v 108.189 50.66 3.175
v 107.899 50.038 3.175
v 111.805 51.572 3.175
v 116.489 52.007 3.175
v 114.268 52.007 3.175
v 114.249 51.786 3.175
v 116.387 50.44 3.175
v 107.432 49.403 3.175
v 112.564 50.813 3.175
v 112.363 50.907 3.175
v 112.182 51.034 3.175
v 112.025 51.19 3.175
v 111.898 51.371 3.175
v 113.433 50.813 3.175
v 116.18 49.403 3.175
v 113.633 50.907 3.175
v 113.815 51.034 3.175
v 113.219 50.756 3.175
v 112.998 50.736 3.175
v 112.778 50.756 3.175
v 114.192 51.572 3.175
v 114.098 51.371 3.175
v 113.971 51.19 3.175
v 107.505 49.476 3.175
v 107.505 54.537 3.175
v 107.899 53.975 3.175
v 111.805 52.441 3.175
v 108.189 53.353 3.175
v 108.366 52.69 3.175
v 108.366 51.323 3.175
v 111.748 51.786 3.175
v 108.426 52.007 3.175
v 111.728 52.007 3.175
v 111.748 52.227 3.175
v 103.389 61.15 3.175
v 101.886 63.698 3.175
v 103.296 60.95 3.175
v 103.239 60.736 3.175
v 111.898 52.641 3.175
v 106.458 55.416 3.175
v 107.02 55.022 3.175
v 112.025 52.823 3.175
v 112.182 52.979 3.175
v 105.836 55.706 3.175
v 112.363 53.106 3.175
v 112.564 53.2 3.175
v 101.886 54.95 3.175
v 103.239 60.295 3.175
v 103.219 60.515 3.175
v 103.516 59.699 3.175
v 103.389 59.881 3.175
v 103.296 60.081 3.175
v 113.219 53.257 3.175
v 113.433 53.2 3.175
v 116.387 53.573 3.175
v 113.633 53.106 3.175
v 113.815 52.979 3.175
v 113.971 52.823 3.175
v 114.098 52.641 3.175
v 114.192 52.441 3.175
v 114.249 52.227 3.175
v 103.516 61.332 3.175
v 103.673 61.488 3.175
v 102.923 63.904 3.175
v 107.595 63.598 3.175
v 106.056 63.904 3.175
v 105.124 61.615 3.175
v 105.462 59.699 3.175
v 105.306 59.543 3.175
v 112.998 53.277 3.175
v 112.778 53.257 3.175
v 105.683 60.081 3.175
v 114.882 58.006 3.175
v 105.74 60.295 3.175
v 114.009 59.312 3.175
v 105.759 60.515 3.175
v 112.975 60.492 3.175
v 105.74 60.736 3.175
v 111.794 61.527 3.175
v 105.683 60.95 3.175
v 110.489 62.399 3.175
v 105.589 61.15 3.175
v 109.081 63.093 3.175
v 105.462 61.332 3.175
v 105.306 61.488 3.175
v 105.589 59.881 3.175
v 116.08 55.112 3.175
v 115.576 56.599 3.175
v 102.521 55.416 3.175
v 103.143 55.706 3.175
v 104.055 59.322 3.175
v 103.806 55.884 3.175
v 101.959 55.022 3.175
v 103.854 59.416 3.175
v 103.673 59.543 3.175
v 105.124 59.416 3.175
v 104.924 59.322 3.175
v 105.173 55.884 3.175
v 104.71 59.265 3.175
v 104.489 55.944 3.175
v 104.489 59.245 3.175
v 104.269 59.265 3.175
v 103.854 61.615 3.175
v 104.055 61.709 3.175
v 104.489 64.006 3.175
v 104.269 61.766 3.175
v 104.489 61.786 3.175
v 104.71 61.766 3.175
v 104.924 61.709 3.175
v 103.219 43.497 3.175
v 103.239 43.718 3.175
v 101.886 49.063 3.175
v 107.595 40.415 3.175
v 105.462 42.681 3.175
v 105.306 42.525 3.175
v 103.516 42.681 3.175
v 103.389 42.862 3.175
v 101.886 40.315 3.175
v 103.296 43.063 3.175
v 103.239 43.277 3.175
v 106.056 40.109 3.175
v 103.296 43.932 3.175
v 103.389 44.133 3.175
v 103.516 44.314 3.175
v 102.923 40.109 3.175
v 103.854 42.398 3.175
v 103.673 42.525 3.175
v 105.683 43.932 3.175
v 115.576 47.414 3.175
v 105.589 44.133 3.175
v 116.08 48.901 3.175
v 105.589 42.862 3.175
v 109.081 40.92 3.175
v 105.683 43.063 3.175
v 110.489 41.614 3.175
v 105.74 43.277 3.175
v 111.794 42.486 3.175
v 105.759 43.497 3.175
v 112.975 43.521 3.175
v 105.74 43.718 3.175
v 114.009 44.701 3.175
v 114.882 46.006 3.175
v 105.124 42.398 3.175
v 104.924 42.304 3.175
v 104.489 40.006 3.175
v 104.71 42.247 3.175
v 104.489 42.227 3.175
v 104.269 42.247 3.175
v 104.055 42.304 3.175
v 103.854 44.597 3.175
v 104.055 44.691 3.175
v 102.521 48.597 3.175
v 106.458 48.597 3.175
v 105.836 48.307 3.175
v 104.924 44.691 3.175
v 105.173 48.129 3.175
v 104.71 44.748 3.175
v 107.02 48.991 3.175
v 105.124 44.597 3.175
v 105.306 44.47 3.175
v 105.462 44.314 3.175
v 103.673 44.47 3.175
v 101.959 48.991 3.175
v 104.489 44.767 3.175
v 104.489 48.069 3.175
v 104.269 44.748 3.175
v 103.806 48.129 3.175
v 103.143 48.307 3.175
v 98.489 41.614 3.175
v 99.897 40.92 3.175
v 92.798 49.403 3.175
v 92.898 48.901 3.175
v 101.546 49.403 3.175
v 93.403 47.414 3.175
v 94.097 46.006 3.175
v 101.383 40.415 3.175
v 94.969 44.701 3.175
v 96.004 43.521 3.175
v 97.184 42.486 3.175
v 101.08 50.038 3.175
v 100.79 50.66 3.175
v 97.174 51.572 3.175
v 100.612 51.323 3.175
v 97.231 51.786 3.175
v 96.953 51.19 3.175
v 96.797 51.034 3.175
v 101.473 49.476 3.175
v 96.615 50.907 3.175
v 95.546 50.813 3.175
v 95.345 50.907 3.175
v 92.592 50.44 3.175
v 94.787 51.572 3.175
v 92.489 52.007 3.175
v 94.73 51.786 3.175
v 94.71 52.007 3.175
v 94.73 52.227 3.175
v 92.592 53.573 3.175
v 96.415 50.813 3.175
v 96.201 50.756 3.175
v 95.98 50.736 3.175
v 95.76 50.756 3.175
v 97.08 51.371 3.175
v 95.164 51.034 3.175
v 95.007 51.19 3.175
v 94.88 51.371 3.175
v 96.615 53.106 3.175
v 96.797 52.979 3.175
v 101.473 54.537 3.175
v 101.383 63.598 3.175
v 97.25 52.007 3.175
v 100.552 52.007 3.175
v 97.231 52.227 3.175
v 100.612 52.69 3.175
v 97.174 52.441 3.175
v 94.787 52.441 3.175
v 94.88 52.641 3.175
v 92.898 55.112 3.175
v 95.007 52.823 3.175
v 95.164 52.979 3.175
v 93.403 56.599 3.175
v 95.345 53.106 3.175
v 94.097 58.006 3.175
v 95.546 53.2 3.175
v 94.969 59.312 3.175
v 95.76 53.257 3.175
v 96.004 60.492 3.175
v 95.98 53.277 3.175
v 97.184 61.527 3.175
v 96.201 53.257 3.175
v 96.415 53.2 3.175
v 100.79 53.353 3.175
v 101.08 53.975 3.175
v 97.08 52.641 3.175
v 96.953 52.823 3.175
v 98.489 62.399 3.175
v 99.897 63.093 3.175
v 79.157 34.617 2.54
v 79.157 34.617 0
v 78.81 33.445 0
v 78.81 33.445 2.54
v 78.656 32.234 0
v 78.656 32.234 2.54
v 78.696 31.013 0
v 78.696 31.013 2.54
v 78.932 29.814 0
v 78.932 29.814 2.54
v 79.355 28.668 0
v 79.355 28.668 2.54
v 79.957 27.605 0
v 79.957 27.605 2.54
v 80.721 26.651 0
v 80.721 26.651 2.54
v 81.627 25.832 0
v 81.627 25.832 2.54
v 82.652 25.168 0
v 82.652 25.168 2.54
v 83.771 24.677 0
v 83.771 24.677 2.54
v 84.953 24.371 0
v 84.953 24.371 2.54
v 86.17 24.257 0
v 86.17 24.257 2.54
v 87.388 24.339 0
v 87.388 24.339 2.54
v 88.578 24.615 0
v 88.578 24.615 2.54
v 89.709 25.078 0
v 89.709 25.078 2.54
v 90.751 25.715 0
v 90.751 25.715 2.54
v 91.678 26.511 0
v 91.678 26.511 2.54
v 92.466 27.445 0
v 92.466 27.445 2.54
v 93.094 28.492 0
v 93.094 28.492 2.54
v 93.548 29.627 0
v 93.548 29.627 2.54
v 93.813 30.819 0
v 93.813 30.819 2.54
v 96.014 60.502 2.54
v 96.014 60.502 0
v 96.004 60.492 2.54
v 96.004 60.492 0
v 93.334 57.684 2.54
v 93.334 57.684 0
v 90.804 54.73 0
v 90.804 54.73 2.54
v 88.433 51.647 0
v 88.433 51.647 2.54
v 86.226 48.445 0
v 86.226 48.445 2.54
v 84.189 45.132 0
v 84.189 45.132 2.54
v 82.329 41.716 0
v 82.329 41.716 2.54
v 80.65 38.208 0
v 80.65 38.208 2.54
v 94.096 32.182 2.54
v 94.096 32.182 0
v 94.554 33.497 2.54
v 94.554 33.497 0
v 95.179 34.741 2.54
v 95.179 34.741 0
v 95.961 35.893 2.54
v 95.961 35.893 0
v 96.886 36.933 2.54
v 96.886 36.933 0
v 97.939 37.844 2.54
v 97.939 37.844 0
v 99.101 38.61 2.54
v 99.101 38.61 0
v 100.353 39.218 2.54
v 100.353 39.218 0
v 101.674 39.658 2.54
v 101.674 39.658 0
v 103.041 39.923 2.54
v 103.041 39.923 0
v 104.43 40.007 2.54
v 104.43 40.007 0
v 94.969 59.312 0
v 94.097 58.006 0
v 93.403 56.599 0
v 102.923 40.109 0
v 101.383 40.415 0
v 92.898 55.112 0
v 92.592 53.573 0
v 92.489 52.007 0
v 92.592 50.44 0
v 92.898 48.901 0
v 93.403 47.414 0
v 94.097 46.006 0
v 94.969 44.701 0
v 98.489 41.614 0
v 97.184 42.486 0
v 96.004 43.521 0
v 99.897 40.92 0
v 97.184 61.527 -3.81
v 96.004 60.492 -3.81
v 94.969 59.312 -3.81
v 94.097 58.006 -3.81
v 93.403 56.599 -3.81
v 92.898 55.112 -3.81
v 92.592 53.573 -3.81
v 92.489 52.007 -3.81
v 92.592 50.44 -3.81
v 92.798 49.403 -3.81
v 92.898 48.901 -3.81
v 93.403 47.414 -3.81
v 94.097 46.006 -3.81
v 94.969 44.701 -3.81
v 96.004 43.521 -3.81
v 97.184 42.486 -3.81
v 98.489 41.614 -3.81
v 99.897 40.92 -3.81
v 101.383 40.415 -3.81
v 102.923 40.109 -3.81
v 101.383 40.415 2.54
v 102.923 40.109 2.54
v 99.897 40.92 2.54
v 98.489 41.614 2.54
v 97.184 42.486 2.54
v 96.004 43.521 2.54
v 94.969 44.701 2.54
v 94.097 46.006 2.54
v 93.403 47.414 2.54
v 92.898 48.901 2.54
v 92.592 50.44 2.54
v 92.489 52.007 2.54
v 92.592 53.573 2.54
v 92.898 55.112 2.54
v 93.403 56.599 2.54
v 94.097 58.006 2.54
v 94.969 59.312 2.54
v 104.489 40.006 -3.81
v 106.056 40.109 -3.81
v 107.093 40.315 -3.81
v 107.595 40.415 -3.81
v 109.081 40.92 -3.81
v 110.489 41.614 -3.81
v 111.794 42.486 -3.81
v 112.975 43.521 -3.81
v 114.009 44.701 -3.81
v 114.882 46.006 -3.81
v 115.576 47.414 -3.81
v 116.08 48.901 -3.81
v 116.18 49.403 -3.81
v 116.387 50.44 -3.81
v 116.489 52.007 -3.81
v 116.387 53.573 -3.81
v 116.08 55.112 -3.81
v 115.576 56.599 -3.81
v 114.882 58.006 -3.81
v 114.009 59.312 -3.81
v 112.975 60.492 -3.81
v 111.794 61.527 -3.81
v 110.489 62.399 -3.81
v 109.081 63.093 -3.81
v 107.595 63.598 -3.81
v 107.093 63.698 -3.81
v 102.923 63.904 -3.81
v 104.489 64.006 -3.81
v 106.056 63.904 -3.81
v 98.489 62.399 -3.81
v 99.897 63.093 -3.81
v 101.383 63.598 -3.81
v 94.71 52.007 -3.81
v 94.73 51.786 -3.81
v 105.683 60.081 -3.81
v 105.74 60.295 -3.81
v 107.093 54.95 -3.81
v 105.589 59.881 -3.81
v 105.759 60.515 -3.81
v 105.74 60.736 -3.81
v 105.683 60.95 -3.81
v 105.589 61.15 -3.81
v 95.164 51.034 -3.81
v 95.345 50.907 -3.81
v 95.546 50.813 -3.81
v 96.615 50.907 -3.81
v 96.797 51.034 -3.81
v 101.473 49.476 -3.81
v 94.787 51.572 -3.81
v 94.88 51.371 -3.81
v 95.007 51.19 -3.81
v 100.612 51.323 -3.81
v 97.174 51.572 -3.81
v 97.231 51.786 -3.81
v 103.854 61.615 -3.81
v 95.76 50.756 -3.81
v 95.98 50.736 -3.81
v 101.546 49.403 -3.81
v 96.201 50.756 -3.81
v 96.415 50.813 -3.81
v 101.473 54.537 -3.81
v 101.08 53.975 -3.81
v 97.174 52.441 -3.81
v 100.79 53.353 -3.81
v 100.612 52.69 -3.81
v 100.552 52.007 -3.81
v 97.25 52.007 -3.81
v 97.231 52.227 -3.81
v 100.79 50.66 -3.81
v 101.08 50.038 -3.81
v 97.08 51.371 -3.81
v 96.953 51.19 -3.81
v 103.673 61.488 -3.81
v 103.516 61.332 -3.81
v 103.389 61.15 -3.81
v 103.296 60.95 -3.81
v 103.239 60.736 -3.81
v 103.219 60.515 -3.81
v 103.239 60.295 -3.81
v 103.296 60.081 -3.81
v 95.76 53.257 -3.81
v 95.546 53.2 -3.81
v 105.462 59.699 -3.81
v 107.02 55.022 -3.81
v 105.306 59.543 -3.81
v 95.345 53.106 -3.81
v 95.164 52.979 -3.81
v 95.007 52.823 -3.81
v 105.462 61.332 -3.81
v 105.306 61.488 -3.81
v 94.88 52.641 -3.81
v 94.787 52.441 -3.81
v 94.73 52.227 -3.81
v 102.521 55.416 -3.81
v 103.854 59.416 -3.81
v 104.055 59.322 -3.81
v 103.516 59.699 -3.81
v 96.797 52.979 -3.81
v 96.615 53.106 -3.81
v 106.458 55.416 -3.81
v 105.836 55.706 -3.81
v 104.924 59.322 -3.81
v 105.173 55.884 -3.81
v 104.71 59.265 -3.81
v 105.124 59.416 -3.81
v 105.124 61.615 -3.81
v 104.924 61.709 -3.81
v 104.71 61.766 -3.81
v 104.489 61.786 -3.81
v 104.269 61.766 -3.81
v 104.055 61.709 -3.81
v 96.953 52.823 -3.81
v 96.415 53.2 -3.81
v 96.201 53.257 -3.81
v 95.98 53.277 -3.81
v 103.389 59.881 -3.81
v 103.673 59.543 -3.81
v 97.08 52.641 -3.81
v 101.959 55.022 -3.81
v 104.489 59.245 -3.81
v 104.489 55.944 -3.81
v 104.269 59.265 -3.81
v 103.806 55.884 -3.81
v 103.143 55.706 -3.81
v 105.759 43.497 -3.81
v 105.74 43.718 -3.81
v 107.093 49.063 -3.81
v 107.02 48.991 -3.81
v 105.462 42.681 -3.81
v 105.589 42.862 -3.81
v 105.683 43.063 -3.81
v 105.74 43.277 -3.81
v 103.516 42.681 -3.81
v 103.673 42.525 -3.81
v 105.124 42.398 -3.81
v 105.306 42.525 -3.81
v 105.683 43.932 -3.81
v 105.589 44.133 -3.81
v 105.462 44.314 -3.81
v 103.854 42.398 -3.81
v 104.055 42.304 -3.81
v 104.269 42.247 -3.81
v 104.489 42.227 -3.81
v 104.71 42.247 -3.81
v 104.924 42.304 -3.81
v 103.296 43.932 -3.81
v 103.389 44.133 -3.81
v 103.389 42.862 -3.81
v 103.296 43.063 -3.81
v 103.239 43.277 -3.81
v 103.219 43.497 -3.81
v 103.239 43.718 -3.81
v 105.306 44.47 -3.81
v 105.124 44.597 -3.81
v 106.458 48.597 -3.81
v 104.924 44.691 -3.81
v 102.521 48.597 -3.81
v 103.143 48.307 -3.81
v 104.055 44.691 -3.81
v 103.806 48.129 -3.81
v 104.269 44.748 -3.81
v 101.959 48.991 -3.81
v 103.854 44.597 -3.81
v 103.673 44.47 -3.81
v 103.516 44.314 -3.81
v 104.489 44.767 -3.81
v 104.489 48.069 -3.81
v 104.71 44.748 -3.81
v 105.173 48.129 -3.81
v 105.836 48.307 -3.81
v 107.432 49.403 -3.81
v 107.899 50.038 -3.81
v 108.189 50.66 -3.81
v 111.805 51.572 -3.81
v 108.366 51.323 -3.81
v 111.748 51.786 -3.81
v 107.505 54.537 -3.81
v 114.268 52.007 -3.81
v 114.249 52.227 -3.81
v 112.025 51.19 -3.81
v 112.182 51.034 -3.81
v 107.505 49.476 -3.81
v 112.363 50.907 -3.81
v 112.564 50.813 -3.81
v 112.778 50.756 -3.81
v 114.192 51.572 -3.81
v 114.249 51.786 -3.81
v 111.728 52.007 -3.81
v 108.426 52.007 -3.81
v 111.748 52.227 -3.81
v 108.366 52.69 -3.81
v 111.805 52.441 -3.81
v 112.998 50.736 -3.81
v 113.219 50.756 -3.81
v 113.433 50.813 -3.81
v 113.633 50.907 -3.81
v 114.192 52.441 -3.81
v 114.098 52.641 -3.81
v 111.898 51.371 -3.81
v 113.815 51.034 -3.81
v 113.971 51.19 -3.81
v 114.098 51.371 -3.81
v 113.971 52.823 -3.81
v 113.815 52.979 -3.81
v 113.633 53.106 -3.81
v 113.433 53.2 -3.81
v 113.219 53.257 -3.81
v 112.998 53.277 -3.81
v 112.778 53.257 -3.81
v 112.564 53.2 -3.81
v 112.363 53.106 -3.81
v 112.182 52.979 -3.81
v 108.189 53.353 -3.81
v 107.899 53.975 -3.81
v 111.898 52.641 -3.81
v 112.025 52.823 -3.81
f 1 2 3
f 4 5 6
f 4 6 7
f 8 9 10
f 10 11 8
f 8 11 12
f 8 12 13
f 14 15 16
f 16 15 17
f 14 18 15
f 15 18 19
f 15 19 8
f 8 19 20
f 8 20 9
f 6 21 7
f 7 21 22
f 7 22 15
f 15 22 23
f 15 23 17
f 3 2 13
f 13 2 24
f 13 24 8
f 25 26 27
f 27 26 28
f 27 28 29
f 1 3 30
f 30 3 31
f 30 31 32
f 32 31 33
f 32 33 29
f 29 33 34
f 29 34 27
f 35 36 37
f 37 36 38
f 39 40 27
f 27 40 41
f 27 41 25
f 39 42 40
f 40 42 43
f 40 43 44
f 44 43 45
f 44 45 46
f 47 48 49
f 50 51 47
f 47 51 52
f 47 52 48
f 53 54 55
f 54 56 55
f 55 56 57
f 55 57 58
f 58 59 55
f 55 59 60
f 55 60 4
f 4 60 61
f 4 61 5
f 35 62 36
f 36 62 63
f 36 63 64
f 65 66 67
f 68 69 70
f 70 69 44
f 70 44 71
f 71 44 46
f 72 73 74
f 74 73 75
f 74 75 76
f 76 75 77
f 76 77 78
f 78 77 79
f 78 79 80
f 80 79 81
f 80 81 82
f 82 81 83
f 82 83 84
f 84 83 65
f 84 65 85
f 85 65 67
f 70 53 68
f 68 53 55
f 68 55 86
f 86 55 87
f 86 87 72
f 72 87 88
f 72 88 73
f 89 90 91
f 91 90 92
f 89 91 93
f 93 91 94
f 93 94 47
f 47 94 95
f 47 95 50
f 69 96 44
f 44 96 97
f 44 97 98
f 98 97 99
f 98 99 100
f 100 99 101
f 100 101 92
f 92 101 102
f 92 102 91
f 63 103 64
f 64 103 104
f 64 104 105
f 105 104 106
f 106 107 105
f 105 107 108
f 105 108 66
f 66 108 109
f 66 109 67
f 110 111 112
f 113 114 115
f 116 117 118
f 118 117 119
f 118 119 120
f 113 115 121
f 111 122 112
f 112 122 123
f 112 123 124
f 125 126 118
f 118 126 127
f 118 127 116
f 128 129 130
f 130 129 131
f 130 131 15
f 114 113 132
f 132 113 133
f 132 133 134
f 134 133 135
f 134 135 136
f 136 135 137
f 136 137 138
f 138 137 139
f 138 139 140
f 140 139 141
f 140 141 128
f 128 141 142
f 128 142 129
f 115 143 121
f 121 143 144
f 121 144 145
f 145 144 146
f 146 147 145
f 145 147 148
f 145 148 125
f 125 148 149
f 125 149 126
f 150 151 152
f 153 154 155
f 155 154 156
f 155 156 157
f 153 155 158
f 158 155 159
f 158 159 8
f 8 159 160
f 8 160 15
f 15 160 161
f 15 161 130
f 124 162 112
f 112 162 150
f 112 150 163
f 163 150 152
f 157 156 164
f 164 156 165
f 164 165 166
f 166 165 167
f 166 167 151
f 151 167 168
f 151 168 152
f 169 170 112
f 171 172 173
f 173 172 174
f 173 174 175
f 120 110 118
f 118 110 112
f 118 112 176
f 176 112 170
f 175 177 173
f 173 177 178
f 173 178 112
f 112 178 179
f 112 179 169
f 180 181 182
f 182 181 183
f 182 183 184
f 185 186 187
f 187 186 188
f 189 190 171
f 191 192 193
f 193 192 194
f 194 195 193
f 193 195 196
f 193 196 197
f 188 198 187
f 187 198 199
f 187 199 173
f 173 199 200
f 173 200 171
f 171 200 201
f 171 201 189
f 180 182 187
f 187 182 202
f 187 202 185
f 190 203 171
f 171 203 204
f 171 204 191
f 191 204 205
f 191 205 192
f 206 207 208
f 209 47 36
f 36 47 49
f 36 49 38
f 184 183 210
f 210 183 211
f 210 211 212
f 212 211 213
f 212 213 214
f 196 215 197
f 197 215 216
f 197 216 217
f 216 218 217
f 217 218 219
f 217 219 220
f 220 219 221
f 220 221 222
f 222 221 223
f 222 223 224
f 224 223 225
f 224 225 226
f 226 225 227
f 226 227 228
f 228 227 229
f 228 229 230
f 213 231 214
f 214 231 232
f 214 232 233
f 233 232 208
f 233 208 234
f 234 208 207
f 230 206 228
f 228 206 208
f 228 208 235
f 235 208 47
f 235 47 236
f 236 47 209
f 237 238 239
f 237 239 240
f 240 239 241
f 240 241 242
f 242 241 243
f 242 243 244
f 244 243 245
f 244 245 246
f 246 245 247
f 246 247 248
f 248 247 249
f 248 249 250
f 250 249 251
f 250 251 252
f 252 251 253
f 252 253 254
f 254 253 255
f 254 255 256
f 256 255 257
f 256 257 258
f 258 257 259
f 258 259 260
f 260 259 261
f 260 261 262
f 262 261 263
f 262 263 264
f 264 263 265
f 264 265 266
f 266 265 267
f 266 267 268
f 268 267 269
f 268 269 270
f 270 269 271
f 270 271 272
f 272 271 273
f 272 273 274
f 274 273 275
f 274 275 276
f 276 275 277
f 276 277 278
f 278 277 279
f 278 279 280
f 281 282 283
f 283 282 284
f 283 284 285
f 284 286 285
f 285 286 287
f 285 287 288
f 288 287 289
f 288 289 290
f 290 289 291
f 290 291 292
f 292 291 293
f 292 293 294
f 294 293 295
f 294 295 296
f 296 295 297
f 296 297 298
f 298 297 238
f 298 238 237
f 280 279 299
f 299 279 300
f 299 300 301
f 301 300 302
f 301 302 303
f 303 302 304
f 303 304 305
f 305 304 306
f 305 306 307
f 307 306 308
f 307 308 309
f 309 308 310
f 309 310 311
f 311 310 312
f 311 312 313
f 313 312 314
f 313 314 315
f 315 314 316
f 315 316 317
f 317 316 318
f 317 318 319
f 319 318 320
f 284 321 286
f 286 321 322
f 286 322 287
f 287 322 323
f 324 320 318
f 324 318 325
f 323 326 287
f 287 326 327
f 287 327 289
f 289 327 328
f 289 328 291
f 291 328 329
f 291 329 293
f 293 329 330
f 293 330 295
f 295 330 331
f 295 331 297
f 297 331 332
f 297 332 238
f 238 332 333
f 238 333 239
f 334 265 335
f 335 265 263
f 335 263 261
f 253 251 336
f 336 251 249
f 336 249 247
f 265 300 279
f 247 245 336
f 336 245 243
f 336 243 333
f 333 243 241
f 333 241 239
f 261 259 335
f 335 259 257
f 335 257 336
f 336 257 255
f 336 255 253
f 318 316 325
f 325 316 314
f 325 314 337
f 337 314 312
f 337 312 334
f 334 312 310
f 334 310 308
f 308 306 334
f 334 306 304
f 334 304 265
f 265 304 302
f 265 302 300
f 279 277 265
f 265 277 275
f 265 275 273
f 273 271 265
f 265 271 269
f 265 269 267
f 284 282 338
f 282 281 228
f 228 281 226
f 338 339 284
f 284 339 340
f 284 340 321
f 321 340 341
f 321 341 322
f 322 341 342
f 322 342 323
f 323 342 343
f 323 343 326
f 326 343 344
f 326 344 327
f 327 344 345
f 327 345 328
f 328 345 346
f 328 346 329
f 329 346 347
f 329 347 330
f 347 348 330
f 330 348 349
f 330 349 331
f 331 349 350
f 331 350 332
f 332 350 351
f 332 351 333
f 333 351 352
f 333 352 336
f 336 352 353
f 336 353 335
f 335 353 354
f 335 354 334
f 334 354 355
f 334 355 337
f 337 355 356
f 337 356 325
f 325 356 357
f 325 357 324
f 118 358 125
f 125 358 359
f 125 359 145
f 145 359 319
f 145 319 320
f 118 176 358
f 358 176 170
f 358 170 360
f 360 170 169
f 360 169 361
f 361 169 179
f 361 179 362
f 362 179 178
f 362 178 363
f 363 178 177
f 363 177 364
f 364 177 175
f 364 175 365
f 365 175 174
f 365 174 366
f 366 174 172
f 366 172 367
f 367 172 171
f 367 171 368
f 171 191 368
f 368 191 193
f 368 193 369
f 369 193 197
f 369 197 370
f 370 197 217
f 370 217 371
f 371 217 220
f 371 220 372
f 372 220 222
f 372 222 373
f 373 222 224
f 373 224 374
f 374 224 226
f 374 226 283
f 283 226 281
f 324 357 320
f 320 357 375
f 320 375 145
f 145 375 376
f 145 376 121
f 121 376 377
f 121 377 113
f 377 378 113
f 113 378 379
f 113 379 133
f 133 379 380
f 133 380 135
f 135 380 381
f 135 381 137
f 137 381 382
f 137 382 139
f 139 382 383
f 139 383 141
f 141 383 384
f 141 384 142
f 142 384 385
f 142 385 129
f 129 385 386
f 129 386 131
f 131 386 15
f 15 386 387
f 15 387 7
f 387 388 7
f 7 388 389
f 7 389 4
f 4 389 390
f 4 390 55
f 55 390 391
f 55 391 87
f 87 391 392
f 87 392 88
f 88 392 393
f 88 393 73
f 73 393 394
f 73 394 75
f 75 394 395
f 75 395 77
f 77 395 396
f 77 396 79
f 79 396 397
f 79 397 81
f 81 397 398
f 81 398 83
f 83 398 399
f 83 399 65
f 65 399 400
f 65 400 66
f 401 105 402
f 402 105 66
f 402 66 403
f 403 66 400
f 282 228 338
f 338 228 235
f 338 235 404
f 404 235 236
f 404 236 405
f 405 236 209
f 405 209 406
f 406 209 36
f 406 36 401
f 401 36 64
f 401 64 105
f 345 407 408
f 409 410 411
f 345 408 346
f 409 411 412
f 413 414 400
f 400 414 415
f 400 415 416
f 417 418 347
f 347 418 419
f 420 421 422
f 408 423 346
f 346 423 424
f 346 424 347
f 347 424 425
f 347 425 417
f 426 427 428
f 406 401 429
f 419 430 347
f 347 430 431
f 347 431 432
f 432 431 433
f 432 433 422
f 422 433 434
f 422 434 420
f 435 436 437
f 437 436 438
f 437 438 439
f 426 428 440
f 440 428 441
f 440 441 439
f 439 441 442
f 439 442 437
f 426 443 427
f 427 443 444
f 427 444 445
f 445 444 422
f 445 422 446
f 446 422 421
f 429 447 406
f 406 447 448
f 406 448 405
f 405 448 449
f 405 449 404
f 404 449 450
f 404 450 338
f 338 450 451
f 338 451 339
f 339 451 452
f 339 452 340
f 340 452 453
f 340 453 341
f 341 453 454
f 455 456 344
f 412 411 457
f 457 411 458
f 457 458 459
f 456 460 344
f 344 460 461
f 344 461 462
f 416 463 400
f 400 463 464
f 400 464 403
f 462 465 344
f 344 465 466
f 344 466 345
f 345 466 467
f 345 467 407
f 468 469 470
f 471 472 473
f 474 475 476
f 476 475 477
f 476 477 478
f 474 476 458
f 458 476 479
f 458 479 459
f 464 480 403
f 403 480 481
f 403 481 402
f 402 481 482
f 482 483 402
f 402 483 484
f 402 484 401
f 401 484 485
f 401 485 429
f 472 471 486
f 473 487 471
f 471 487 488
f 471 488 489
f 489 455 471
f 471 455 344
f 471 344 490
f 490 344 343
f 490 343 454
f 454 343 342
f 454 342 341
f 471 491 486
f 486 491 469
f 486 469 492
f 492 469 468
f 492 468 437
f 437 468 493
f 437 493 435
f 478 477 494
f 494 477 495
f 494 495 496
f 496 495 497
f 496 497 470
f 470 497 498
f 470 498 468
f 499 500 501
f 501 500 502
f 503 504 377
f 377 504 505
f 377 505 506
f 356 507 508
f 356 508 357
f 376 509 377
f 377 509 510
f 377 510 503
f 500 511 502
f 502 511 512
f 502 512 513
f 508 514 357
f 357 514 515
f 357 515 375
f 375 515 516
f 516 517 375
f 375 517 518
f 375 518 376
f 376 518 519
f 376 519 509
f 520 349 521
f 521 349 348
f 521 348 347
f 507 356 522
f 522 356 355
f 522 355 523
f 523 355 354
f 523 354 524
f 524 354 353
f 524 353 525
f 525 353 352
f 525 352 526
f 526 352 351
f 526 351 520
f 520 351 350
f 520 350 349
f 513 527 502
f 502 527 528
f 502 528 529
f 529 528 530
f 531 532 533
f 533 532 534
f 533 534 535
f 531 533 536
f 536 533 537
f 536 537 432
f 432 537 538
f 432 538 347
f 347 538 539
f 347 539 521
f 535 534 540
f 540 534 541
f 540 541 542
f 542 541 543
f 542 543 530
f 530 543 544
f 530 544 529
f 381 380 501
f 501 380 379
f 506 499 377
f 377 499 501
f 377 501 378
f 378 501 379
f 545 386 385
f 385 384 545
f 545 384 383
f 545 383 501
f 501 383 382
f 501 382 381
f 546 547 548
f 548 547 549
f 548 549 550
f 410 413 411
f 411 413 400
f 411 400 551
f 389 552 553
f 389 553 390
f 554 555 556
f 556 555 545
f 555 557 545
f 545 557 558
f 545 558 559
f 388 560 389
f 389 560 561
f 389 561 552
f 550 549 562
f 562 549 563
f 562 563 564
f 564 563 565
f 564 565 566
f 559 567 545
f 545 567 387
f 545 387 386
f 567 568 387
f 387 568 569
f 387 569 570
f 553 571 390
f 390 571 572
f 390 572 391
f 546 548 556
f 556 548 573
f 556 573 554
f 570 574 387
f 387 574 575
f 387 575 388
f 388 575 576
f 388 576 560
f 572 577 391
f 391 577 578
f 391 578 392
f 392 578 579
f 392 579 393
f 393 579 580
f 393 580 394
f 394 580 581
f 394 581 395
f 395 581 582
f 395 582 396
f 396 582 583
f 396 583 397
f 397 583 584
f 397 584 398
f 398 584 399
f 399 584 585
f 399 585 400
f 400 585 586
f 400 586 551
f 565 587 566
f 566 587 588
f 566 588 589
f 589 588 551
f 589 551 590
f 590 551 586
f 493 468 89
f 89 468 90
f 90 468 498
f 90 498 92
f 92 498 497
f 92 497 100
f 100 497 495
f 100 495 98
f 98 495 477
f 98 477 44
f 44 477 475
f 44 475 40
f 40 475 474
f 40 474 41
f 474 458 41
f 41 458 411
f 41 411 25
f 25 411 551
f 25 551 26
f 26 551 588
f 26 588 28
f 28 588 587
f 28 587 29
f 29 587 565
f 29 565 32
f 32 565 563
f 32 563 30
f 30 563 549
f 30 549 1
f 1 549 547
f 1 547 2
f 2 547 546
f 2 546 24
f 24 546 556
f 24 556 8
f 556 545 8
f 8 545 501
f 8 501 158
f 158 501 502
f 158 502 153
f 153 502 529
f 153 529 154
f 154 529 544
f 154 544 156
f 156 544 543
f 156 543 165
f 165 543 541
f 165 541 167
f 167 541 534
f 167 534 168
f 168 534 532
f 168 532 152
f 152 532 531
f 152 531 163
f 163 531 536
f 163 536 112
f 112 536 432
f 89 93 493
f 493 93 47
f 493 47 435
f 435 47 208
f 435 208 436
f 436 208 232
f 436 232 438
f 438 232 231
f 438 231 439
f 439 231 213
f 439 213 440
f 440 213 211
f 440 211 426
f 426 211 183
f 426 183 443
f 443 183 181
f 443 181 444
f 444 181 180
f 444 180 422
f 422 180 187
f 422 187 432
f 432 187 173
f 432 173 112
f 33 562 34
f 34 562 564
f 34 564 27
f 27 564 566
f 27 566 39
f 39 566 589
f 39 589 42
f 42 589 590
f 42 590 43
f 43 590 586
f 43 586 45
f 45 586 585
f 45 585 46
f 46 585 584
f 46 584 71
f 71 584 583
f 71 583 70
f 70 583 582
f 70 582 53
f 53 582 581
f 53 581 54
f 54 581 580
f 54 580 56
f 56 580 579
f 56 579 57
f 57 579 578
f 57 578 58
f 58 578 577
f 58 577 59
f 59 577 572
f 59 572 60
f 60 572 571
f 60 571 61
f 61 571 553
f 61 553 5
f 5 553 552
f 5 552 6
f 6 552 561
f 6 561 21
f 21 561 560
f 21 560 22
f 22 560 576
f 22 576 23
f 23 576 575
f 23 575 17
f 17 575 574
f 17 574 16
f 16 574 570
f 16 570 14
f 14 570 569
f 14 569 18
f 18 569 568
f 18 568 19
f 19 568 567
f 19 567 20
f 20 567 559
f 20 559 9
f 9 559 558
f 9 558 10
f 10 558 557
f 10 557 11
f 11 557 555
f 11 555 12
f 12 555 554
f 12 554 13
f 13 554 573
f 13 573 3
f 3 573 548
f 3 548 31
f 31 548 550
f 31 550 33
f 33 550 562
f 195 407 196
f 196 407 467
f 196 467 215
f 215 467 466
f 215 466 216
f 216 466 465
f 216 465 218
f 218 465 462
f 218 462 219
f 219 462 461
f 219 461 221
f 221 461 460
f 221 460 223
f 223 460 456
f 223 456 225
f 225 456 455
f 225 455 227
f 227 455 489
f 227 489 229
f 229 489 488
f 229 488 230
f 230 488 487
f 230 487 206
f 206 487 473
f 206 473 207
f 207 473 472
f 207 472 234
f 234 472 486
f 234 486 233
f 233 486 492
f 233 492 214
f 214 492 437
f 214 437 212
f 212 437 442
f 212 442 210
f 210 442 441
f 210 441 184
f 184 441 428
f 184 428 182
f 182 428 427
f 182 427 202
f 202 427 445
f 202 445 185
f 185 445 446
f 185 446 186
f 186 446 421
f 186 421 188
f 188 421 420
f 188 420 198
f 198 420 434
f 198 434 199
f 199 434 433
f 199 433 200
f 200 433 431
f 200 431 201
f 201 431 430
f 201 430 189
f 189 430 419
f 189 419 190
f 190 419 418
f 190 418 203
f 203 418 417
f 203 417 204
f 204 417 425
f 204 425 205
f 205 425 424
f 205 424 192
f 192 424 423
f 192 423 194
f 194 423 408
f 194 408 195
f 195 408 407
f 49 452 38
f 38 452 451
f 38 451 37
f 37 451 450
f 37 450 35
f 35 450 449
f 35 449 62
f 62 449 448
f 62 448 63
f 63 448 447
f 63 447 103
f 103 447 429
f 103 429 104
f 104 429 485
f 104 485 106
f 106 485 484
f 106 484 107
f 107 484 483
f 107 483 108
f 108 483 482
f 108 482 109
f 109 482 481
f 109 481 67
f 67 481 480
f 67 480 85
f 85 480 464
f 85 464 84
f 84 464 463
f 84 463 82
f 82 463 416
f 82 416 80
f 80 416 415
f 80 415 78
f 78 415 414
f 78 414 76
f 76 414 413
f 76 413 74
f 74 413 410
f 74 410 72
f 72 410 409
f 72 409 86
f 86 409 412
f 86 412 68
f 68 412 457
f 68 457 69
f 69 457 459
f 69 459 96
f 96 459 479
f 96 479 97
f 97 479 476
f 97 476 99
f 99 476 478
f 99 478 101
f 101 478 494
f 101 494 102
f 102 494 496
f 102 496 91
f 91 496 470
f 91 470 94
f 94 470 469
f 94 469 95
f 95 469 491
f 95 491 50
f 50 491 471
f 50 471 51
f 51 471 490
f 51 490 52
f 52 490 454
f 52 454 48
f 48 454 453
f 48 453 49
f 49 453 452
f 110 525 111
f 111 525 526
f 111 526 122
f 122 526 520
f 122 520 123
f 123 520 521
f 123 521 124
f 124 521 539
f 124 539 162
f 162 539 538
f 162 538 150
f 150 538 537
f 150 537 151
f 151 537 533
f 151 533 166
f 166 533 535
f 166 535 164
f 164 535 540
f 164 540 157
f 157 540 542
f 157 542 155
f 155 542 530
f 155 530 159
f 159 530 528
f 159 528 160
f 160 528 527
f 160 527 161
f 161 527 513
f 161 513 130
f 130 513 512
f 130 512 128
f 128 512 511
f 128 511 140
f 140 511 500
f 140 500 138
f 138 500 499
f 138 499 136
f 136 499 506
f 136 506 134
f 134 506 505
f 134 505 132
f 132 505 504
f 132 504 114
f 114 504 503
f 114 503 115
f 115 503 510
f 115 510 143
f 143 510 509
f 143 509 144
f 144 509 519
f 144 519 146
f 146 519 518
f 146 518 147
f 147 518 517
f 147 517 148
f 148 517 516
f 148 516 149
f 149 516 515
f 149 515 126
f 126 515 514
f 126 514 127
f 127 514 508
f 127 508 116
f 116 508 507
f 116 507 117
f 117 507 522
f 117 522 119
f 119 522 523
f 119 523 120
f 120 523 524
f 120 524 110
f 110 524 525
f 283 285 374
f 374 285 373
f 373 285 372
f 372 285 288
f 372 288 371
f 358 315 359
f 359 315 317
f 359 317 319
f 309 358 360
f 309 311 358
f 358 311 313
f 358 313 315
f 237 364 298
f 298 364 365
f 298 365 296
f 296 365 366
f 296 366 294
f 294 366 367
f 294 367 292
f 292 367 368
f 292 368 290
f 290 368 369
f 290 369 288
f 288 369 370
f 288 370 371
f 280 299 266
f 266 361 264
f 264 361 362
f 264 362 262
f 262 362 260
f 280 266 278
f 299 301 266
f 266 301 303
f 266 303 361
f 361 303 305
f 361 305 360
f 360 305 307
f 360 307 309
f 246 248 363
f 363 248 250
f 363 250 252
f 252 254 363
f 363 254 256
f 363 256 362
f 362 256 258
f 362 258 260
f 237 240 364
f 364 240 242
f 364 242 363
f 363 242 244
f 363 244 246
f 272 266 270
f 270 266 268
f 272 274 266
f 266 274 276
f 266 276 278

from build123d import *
from build123d.topology import SkipClean

# Parameters (mm, degrees)
BOSS_EXTRUDE1_DEPTH = 3.175
BOSS_EXTRUDE2_START = 3.81
SKETCH2_R           = 12
BOSS_EXTRUDE2_DEPTH = 3.81
SKETCH3_R           = 3.937
CUT_EXTRUDE1_DEPTH  = 134.099089527
SKETCH4_R           = 1.27
CUT_EXTRUDE2_DEPTH  = 134.099089527
CUT_EXTRUDE3_DEPTH  = 133.970273023
CUT_EXTRUDE4_START  = -0.635
CUT_EXTRUDE4_DEPTH  = 0.635


with BuildPart() as part:
    # Sketch1 → Boss-Extrude1 (new body)
    with BuildSketch(Plane.XY):
        with BuildLine():
            ThreePointArc((113.784062988, 44.416608597), (112.542436022, 60.902914722), (96.014300162, 60.502100346))
            ThreePointArc((96.014300162, 60.502100346), (86.225733854, 48.445051897), (79.156979953, 34.616777747))
            ThreePointArc((79.156979953, 34.616777747), (81.153408489, 26.227218543), (89.699693339, 25.073335615))
            ThreePointArc((89.699693339, 25.073335615), (102.758092485, 33.479680479), (113.784062988, 44.416608597))
        make_face()
    extrude(amount=BOSS_EXTRUDE1_DEPTH)

    # Sketch2 → Boss-Extrude2 (add)
    with SkipClean():  # the faces are left unmerged after this step: merging them gives an invalid solid
        with BuildSketch(Plane(origin=(0, 0, 0), x_dir=(-1, 0, 0), z_dir=(0, 0, -1)).offset(BOSS_EXTRUDE2_START)):
            with Locations((-104.48925, 52.0065)):
                Circle(SKETCH2_R)
        extrude(amount=-BOSS_EXTRUDE2_DEPTH)

    # Sketch3 → Cut-Extrude1 (cut, through all)
    with SkipClean():  # the faces are left unmerged after this step: merging them gives an invalid solid
        with BuildSketch(Plane(origin=(0, 0, -3.81), x_dir=(-1, 0, 0), z_dir=(0, 0, -1))):
            with Locations((-104.48925, 52.0065)):
                Circle(SKETCH3_R)
        extrude(amount=-CUT_EXTRUDE1_DEPTH, mode=Mode.SUBTRACT)

    # Sketch4 → Cut-Extrude2 (cut, through all)
    with SkipClean():  # the faces are left unmerged after this step: merging them gives an invalid solid
        with BuildSketch(Plane(origin=(0, 0, -3.81), x_dir=(-1, 0, 0), z_dir=(0, 0, -1))):
            with Locations((-95.98025, 52.0065)):
                Circle(SKETCH4_R)
            with Locations((-112.99825, 52.0065)):
                Circle(SKETCH4_R)
            with Locations((-104.48925, 43.4975)):
                Circle(SKETCH4_R)
            with Locations((-104.48925, 60.5155)):
                Circle(SKETCH4_R)
        extrude(amount=-CUT_EXTRUDE2_DEPTH, mode=Mode.SUBTRACT)

    # Sketch5 → Cut-Extrude3 (cut, through all)
    with SkipClean():  # the faces are left unmerged after this step: merging them gives an invalid solid
        with BuildSketch(Plane(origin=(0, 0, 0), x_dir=(-1, 0, 0), z_dir=(0, 0, -1))):
            with BuildLine():
                ThreePointArc((-104.430493989, 40.006643845), (-109.606684651, 41.15238269), (-113.7840634, 44.4166091))
                ThreePointArc((-113.7840634, 44.4166091), (-102.758092767, 33.479680706), (-89.699693406, 25.073335649))
                ThreePointArc((-89.699693406, 25.073335649), (-92.462895691, 27.440507008), (-93.81346398, 30.819079549))
                ThreePointArc((-93.81346398, 30.819079549), (-97.397477458, 37.40567327), (-104.430493989, 40.006643845))
            make_face()
        extrude(amount=-CUT_EXTRUDE3_DEPTH, mode=Mode.SUBTRACT)

    # Sketch6 → Cut-Extrude4 (cut)
    with SkipClean():  # the faces are left unmerged after this step: merging them gives an invalid solid
        with BuildSketch(Plane.XY.offset(3.175).offset(CUT_EXTRUDE4_START)):
            with BuildLine():
                ThreePointArc((96.014299675, 60.502099861), (86.225733771, 48.44505177), (79.156980092, 34.616778107))
                ThreePointArc((79.156980092, 34.616778107), (84.355854315, 24.500045491), (93.81346398, 30.819079549))
                ThreePointArc((93.81346398, 30.819079549), (97.397477458, 37.40567327), (104.430493989, 40.006643845))
                ThreePointArc((104.430493989, 40.006643845), (93.388711037, 47.448207038), (96.014299675, 60.502099861))
            make_face()
        extrude(amount=CUT_EXTRUDE4_DEPTH, mode=Mode.SUBTRACT)


solid = part.part
